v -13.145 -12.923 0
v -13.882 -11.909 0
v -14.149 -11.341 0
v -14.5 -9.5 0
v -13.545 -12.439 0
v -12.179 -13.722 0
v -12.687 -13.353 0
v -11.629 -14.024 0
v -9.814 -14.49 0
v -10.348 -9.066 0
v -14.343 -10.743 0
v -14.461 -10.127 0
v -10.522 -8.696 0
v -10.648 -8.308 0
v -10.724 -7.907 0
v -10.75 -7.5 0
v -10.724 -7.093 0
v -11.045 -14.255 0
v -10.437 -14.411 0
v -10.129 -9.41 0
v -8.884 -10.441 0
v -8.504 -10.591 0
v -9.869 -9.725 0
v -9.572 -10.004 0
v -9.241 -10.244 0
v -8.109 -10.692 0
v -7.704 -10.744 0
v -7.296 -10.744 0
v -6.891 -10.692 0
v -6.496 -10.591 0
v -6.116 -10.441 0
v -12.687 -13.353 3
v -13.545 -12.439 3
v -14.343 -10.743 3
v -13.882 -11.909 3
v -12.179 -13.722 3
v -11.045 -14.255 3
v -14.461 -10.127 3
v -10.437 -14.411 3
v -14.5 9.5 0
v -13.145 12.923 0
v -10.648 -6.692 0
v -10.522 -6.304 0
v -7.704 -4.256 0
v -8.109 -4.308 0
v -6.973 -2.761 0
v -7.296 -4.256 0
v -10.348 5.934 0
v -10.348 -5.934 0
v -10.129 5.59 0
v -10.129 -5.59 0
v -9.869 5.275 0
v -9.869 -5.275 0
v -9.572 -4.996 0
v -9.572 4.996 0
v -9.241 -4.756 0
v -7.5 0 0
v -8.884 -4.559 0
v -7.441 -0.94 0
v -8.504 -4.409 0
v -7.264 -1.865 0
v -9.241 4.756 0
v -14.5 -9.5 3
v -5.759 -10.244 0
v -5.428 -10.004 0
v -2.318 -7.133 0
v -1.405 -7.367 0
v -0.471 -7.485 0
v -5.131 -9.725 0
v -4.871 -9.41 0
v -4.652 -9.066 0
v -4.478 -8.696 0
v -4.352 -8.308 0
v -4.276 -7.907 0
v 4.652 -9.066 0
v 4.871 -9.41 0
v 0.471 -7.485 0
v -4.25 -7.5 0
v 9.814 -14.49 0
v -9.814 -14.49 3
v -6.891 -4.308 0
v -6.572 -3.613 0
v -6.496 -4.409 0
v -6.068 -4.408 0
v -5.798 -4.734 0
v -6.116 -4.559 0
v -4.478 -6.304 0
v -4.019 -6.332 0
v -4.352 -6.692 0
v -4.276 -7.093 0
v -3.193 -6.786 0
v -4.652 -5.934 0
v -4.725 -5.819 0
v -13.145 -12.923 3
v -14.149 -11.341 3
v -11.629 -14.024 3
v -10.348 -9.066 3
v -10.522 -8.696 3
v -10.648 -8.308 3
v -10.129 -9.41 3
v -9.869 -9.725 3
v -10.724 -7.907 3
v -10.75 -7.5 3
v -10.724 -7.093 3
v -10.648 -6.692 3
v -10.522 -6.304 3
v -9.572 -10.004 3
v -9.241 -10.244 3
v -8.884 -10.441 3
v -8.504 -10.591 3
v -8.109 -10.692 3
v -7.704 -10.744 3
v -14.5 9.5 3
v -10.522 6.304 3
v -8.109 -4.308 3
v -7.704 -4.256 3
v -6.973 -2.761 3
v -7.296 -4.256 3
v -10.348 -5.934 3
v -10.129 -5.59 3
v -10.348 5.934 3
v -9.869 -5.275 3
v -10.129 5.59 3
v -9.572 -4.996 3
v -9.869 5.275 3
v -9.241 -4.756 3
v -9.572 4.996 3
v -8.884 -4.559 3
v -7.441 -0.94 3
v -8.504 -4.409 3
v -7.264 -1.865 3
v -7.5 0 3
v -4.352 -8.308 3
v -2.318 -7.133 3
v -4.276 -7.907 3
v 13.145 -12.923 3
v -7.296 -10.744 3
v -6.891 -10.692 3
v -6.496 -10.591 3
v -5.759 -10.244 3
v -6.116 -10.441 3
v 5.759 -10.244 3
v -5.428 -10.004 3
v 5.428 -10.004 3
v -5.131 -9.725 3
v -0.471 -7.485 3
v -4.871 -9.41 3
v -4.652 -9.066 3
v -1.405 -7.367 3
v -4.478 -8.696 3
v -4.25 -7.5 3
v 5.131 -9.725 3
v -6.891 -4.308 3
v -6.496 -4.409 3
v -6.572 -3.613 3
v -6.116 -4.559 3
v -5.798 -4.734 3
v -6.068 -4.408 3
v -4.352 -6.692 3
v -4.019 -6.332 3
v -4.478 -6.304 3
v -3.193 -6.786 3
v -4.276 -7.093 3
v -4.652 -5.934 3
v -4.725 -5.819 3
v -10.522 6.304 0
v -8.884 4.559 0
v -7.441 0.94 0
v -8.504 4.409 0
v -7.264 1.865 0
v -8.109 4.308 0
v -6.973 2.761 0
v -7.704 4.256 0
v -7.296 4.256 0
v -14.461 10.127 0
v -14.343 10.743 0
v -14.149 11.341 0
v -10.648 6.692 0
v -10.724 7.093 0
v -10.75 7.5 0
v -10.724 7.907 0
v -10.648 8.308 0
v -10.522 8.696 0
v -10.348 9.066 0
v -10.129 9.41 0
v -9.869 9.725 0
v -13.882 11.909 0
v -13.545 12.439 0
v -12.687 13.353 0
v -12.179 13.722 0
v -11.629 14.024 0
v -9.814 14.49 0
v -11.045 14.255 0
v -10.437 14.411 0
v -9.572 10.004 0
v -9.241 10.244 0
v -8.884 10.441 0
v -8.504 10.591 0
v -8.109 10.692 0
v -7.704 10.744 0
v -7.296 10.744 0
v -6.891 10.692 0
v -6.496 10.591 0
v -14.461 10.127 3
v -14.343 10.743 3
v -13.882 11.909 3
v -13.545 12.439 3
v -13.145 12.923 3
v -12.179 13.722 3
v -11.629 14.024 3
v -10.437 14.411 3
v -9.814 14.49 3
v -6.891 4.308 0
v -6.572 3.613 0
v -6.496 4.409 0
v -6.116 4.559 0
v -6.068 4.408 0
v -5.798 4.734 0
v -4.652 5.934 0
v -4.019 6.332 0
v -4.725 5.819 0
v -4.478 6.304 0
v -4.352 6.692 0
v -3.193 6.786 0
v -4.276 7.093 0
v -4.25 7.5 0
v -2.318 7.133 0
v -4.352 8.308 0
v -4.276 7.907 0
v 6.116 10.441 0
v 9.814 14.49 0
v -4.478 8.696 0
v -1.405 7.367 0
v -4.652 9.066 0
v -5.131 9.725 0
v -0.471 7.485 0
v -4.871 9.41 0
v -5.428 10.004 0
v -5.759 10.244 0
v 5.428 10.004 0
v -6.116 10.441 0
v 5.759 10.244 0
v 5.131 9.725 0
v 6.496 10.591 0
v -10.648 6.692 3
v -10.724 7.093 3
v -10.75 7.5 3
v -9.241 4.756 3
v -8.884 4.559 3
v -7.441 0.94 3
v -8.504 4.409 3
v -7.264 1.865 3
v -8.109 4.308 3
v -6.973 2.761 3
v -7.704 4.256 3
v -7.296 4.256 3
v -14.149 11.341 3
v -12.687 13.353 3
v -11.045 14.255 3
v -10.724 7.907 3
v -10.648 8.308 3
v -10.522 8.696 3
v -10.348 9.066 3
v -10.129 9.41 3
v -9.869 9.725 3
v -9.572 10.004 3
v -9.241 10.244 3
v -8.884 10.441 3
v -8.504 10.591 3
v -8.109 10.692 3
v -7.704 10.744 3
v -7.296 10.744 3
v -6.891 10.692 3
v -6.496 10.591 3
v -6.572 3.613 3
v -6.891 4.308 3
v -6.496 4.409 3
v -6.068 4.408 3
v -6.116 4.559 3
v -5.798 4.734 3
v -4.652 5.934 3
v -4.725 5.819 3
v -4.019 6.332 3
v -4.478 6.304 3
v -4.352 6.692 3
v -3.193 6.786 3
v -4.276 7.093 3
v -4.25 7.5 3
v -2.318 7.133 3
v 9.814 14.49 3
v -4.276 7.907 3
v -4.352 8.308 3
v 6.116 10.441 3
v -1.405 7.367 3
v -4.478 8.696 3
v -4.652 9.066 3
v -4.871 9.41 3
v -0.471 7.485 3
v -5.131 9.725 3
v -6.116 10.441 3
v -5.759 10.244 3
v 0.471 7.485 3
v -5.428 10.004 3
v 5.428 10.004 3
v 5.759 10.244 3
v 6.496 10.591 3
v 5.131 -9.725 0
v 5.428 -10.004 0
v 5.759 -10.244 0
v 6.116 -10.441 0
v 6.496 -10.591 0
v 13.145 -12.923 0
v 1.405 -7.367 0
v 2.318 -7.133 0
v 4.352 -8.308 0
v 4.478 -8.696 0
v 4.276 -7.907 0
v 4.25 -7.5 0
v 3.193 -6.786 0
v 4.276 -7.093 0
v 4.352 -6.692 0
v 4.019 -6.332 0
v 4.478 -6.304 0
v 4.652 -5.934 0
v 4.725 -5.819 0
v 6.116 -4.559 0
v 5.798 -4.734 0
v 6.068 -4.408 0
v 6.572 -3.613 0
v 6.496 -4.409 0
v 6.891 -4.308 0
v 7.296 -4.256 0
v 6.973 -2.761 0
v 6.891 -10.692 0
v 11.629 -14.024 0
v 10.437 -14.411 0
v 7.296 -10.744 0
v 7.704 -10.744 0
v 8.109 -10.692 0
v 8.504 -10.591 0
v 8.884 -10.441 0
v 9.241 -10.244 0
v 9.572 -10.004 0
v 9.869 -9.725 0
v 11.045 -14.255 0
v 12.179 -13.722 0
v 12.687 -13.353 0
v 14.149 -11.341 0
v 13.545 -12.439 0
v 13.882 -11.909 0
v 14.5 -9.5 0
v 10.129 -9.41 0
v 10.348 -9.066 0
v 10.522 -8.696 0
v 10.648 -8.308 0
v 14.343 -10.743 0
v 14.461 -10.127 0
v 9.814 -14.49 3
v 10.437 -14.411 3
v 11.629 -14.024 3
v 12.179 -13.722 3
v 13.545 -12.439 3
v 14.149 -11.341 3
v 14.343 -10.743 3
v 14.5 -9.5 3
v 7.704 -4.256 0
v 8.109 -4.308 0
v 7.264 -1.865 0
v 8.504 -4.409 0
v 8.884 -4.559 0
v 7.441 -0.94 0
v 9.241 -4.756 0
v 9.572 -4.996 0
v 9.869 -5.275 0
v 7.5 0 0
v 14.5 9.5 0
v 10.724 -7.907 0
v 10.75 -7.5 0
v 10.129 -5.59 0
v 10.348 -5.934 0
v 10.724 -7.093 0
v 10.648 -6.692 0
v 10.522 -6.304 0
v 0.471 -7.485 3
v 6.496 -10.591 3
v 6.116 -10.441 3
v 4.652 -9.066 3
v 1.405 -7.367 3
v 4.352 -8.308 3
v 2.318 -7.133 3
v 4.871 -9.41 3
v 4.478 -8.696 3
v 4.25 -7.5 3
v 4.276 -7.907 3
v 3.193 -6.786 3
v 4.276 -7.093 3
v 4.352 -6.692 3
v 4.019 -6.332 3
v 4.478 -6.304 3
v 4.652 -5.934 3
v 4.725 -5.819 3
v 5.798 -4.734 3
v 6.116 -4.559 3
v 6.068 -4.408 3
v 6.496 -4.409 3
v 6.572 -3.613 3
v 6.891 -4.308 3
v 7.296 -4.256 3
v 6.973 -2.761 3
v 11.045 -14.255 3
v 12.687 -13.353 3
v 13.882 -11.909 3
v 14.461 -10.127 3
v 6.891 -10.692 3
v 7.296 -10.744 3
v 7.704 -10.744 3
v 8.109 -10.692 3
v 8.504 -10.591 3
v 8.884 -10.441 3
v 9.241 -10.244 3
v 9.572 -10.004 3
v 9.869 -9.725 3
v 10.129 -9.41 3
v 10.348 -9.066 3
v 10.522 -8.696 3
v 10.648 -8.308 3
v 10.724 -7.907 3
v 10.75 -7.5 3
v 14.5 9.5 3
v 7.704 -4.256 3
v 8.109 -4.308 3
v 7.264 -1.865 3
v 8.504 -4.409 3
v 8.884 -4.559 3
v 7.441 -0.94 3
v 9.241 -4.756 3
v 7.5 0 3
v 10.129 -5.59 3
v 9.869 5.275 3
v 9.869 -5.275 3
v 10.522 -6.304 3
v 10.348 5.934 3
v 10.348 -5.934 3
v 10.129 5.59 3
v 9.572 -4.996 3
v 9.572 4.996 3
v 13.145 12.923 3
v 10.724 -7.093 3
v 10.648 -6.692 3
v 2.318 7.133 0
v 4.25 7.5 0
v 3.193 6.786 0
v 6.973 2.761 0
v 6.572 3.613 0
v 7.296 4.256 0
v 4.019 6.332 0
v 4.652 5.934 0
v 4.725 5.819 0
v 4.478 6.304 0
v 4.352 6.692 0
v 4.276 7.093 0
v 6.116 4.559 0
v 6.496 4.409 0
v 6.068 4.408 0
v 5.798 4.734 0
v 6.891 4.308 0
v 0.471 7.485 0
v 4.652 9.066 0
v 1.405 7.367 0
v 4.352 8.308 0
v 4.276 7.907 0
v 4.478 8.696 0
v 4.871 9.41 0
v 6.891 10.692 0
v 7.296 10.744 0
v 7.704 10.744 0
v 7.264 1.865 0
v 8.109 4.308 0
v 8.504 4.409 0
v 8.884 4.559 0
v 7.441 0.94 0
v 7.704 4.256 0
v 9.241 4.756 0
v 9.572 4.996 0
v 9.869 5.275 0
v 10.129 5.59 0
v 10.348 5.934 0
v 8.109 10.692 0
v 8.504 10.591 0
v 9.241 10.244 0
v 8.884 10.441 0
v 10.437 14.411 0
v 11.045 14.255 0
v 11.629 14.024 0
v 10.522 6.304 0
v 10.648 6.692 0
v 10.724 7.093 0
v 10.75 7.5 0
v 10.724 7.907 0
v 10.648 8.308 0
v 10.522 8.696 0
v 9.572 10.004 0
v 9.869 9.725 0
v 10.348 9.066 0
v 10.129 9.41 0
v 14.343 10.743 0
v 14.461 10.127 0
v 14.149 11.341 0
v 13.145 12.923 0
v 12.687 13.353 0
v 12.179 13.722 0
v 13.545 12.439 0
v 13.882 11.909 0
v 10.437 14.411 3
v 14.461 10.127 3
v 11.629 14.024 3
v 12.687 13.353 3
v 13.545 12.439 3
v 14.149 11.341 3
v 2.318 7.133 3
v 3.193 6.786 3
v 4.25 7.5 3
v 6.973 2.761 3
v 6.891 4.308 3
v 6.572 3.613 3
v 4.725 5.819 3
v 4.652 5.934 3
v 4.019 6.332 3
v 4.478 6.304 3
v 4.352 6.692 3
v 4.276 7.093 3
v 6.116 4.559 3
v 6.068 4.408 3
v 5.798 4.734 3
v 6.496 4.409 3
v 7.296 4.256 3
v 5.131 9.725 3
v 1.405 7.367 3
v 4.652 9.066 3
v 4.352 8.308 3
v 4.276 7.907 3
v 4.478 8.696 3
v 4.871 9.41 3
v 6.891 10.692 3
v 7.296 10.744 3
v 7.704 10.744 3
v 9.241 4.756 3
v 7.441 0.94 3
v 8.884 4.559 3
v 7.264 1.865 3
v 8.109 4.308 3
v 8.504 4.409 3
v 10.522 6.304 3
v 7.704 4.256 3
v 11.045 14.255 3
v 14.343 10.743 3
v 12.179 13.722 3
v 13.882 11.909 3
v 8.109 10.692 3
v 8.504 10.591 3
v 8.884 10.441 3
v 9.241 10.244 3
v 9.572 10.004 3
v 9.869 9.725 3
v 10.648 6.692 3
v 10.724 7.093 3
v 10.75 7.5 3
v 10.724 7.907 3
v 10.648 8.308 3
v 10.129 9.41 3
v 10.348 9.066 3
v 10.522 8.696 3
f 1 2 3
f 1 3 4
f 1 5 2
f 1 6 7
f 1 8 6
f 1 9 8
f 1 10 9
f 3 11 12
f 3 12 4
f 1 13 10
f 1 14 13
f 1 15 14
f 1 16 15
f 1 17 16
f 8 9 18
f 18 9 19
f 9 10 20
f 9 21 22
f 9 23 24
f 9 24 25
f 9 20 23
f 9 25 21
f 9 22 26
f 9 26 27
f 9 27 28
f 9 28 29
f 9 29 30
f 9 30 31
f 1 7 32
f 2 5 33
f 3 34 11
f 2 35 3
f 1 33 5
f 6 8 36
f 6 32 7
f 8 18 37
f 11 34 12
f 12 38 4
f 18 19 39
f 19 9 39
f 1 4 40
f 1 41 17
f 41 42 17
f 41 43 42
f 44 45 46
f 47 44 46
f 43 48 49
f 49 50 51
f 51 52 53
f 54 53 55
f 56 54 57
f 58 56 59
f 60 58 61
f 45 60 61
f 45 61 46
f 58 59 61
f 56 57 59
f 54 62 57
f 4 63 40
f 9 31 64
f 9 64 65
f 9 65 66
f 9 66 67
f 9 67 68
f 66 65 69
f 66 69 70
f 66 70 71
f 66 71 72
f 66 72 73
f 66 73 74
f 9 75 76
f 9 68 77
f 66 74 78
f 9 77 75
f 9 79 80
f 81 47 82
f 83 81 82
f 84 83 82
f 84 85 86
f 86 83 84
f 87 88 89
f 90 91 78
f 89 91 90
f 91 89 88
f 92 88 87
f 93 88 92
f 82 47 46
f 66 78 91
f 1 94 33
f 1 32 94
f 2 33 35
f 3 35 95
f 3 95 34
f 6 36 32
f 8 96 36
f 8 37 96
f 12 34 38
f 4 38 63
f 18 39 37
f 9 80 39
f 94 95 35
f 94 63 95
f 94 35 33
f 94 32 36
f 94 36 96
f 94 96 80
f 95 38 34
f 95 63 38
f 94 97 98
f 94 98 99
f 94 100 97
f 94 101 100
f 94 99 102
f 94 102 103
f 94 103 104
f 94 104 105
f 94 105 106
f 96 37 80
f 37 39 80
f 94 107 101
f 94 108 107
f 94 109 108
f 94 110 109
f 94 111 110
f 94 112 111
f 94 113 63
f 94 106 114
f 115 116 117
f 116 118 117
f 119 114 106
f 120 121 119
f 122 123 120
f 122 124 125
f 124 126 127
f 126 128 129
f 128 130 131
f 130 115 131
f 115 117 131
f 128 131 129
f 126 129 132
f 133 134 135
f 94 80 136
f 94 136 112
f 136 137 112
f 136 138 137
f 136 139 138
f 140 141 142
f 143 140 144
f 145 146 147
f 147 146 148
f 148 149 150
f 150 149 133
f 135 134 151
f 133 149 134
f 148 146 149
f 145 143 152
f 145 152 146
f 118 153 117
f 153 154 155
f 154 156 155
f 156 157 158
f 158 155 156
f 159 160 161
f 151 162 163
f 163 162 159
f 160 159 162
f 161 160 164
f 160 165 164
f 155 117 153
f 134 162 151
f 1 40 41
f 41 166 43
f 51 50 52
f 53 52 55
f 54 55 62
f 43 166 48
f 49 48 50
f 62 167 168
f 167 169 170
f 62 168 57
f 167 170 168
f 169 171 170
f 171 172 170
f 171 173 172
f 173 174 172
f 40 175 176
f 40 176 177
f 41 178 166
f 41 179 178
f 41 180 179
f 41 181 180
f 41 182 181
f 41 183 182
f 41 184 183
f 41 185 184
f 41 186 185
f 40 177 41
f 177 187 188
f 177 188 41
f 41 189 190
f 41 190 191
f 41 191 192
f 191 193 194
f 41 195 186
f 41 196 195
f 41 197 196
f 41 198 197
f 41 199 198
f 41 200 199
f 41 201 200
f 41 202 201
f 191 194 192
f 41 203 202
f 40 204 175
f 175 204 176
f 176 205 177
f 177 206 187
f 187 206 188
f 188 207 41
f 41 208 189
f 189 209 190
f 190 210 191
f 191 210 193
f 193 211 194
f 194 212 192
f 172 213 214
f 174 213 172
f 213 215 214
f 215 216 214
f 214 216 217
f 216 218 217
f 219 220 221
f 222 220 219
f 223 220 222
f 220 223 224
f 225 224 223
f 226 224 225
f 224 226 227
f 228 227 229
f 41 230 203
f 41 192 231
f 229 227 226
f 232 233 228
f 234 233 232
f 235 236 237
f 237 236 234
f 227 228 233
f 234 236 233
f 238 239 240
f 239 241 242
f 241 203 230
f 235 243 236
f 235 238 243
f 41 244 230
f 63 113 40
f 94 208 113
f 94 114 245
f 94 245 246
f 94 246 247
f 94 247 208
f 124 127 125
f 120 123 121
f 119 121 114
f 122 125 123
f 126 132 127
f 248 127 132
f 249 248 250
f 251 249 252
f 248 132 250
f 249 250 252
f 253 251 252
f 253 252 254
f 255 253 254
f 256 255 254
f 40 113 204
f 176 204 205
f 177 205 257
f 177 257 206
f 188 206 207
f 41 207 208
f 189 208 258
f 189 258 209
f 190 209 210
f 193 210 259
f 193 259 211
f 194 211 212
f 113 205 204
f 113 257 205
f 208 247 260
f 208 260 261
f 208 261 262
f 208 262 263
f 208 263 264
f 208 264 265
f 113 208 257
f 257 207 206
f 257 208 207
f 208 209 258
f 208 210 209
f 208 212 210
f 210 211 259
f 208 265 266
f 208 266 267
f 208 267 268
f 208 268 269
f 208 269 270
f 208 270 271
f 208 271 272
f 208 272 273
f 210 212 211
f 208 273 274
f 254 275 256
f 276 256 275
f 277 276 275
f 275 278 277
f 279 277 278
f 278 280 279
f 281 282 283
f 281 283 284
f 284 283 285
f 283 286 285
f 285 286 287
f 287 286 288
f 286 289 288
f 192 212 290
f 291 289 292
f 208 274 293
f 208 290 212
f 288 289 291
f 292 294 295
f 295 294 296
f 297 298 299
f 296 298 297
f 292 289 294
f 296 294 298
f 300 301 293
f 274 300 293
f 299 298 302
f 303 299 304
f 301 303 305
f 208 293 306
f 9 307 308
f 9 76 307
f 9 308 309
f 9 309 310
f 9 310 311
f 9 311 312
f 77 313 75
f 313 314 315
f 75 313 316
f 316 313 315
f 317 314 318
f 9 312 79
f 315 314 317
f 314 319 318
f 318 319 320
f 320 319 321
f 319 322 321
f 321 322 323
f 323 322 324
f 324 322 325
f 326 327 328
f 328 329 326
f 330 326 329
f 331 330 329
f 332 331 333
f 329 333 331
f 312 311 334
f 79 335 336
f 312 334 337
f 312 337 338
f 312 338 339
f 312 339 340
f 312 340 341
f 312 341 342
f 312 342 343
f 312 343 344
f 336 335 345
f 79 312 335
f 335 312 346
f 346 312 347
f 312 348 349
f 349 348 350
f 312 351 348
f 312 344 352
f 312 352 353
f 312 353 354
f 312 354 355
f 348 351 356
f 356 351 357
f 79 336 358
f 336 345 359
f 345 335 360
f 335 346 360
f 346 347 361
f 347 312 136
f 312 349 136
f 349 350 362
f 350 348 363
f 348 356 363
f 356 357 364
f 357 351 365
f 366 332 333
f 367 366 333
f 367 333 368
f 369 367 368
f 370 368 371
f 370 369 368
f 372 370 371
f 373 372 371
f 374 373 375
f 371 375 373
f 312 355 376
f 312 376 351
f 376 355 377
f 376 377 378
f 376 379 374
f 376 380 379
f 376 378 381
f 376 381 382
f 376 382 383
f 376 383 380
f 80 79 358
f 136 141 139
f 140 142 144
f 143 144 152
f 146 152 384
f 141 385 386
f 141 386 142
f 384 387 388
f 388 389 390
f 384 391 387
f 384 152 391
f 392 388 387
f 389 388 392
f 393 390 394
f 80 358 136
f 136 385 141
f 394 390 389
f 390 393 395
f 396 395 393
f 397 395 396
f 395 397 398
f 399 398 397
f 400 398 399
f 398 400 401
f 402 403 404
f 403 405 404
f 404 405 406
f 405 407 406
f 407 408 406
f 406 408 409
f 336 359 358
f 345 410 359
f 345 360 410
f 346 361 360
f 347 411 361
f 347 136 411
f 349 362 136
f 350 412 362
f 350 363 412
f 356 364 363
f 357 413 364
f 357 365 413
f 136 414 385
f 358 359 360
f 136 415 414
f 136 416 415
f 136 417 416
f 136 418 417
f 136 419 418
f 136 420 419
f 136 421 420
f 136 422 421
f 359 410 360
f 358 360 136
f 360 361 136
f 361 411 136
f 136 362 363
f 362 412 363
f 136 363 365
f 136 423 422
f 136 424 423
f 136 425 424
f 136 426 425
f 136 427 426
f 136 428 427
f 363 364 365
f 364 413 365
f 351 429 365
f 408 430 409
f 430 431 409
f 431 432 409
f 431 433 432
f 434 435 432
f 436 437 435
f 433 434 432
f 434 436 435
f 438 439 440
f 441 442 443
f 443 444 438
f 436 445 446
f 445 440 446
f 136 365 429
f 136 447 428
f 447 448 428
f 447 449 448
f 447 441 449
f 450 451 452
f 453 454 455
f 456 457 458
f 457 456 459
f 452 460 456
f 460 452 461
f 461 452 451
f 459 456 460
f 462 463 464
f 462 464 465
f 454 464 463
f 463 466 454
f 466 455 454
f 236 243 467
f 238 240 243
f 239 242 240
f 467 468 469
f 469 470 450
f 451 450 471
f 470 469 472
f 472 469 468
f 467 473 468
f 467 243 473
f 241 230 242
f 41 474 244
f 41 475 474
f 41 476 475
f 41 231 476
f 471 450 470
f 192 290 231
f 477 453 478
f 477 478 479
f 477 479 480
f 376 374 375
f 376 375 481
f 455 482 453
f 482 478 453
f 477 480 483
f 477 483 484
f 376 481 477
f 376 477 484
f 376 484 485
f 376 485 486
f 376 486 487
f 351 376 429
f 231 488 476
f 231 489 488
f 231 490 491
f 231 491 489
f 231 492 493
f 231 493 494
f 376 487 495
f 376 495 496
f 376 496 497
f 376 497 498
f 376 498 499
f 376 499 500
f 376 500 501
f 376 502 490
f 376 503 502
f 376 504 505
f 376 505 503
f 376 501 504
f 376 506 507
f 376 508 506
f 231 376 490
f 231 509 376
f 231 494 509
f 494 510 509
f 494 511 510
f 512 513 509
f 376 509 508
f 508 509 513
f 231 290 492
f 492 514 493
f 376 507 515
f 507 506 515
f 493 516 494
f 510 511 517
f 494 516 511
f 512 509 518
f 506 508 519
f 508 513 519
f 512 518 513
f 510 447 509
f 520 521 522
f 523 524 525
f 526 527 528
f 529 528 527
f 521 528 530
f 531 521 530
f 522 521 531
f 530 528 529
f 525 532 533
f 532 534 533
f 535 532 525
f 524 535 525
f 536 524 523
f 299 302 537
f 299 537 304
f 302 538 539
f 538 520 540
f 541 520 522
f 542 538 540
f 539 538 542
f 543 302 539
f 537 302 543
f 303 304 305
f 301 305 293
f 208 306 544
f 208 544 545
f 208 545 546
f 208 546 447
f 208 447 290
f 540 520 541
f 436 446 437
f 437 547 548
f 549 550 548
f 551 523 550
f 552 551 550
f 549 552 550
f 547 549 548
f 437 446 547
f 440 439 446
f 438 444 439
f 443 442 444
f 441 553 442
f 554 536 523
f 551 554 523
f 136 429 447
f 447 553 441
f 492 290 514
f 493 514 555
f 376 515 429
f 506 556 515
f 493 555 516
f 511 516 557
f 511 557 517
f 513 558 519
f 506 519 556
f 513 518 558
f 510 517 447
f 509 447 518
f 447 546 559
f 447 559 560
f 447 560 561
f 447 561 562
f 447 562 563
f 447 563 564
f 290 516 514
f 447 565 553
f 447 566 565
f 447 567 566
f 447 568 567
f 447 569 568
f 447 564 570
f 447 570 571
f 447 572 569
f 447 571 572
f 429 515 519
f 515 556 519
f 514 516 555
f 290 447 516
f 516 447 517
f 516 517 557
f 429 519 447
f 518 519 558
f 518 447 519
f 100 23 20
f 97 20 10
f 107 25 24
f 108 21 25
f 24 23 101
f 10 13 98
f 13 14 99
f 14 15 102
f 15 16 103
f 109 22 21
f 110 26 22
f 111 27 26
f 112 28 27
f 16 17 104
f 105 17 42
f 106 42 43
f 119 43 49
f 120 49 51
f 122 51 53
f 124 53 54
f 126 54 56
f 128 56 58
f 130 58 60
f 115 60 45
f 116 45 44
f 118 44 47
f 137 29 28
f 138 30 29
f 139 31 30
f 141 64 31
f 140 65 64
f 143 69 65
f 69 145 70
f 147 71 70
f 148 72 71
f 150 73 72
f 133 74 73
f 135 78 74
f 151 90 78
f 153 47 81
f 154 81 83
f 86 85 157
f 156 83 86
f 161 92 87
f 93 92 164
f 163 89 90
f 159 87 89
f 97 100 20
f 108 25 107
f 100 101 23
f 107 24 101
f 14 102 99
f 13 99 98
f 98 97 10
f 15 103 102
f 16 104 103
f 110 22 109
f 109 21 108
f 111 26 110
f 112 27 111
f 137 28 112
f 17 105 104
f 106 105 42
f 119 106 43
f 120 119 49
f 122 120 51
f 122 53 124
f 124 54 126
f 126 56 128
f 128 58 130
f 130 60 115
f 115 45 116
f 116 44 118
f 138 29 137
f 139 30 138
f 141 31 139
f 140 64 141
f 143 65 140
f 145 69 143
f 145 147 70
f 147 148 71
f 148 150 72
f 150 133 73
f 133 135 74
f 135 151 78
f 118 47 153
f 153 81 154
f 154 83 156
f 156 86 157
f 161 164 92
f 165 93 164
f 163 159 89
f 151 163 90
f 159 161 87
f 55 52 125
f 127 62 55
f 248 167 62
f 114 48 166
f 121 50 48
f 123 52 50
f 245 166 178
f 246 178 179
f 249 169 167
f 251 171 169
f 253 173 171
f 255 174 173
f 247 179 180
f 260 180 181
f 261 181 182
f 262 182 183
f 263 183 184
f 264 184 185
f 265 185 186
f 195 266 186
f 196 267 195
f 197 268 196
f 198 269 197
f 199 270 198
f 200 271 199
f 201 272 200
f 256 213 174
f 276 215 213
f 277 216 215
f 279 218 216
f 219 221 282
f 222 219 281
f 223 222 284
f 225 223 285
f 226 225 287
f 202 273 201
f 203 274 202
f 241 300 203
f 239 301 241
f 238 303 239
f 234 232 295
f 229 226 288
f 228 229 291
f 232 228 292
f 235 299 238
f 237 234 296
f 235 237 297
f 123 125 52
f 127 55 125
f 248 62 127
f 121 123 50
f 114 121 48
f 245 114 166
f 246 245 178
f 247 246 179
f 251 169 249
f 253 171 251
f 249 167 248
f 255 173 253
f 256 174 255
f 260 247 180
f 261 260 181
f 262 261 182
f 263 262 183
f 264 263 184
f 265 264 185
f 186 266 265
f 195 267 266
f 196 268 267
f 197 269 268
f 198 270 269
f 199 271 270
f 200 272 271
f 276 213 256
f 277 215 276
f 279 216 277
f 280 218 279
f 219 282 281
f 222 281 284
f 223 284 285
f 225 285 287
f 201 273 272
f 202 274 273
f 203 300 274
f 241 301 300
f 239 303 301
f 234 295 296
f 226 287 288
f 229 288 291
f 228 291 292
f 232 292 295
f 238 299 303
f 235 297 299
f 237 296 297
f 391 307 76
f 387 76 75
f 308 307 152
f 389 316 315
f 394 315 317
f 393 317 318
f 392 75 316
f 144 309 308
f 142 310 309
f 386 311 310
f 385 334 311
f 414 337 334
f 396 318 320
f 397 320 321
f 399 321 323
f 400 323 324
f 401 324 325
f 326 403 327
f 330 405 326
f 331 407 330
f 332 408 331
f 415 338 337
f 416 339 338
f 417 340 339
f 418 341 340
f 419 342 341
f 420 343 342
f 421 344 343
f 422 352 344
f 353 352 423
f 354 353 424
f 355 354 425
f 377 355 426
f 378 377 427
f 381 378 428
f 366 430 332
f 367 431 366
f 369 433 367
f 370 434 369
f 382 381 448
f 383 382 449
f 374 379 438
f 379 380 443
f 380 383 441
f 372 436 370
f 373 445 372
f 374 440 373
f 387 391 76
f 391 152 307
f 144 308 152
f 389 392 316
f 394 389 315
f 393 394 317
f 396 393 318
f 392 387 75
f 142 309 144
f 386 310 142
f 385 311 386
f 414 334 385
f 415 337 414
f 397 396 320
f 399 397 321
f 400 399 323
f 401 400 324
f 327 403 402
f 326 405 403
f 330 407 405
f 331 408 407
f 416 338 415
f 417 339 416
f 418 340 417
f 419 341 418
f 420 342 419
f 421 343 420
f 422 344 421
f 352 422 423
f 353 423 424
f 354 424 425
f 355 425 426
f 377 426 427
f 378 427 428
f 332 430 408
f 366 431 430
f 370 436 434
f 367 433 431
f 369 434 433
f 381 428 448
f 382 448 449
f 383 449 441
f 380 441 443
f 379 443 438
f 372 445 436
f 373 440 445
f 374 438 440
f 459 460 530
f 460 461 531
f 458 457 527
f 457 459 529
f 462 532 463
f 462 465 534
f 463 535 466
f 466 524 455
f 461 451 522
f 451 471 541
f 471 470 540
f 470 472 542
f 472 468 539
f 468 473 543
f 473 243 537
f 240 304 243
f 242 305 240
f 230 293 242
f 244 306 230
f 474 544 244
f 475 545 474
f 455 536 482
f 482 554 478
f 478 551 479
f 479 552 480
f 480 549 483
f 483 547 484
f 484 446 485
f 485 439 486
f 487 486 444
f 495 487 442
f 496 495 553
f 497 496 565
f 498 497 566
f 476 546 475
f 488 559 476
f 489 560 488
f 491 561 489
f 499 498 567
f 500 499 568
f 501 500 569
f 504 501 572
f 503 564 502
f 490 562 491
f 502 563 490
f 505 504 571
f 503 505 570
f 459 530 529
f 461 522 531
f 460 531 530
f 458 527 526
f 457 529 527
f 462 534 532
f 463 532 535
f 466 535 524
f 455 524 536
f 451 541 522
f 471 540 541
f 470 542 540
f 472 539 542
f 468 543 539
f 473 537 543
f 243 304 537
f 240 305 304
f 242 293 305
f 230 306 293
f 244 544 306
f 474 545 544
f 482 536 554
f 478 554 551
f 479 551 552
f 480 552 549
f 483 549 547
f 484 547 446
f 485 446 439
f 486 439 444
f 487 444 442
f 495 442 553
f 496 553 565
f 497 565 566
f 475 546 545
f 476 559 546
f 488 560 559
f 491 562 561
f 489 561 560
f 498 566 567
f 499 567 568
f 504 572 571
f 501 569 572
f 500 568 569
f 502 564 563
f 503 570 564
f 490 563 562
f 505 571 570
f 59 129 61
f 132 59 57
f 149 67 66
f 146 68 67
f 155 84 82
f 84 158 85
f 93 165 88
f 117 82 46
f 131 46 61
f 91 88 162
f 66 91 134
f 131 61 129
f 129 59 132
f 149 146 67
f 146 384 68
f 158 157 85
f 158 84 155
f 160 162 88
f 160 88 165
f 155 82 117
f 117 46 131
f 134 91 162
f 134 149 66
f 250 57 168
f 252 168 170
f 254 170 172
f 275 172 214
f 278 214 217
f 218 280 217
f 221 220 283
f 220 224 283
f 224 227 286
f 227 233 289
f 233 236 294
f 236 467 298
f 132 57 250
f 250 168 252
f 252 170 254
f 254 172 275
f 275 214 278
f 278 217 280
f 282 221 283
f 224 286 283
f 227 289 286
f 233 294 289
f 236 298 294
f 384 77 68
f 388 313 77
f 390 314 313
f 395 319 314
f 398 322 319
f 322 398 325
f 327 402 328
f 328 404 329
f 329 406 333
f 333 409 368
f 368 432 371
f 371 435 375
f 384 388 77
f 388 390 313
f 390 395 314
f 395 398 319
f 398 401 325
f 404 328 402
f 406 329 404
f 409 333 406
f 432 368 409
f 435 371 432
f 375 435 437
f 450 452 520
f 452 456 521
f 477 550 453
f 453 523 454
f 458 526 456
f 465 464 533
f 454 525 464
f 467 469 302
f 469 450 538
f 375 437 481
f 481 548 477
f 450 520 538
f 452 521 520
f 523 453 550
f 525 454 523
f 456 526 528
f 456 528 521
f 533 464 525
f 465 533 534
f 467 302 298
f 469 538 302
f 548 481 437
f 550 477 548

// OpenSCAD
$fn = 50;

difference() {
	union() {
		hull() {
			translate(v = [-9.5, 9.5, 0]) {
				cylinder(h = 3, r = 5);
			}
			translate(v = [9.5, 9.5, 0]) {
				cylinder(h = 3, r = 5);
			}
			translate(v = [-9.5, -9.5, 0]) {
				cylinder(h = 3, r = 5);
			}
			translate(v = [9.5, -9.5, 0]) {
				cylinder(h = 3, r = 5);
			}
		}
	}
	union() {
		translate(v = [-7.5, -7.5, -100.0]) {
			cylinder(h = 200, r = 3.25);
		}
		translate(v = [-7.5, 7.5, -100.0]) {
			cylinder(h = 200, r = 3.25);
		}
		translate(v = [7.5, -7.5, -100.0]) {
			cylinder(h = 200, r = 3.25);
		}
		translate(v = [7.5, 7.5, -100.0]) {
			cylinder(h = 200, r = 3.25);
		}
		translate(v = [-7.5, -7.5, -100.0]) {
			cylinder(h = 200, r = 1.8);
		}
		translate(v = [-7.5, 7.5, -100.0]) {
			cylinder(h = 200, r = 1.8);
		}
		translate(v = [7.5, -7.5, -100.0]) {
			cylinder(h = 200, r = 1.8);
		}
		translate(v = [7.5, 7.5, -100.0]) {
			cylinder(h = 200, r = 1.8);
		}
		cylinder(h = 3, r = 7.5);
	}
}
